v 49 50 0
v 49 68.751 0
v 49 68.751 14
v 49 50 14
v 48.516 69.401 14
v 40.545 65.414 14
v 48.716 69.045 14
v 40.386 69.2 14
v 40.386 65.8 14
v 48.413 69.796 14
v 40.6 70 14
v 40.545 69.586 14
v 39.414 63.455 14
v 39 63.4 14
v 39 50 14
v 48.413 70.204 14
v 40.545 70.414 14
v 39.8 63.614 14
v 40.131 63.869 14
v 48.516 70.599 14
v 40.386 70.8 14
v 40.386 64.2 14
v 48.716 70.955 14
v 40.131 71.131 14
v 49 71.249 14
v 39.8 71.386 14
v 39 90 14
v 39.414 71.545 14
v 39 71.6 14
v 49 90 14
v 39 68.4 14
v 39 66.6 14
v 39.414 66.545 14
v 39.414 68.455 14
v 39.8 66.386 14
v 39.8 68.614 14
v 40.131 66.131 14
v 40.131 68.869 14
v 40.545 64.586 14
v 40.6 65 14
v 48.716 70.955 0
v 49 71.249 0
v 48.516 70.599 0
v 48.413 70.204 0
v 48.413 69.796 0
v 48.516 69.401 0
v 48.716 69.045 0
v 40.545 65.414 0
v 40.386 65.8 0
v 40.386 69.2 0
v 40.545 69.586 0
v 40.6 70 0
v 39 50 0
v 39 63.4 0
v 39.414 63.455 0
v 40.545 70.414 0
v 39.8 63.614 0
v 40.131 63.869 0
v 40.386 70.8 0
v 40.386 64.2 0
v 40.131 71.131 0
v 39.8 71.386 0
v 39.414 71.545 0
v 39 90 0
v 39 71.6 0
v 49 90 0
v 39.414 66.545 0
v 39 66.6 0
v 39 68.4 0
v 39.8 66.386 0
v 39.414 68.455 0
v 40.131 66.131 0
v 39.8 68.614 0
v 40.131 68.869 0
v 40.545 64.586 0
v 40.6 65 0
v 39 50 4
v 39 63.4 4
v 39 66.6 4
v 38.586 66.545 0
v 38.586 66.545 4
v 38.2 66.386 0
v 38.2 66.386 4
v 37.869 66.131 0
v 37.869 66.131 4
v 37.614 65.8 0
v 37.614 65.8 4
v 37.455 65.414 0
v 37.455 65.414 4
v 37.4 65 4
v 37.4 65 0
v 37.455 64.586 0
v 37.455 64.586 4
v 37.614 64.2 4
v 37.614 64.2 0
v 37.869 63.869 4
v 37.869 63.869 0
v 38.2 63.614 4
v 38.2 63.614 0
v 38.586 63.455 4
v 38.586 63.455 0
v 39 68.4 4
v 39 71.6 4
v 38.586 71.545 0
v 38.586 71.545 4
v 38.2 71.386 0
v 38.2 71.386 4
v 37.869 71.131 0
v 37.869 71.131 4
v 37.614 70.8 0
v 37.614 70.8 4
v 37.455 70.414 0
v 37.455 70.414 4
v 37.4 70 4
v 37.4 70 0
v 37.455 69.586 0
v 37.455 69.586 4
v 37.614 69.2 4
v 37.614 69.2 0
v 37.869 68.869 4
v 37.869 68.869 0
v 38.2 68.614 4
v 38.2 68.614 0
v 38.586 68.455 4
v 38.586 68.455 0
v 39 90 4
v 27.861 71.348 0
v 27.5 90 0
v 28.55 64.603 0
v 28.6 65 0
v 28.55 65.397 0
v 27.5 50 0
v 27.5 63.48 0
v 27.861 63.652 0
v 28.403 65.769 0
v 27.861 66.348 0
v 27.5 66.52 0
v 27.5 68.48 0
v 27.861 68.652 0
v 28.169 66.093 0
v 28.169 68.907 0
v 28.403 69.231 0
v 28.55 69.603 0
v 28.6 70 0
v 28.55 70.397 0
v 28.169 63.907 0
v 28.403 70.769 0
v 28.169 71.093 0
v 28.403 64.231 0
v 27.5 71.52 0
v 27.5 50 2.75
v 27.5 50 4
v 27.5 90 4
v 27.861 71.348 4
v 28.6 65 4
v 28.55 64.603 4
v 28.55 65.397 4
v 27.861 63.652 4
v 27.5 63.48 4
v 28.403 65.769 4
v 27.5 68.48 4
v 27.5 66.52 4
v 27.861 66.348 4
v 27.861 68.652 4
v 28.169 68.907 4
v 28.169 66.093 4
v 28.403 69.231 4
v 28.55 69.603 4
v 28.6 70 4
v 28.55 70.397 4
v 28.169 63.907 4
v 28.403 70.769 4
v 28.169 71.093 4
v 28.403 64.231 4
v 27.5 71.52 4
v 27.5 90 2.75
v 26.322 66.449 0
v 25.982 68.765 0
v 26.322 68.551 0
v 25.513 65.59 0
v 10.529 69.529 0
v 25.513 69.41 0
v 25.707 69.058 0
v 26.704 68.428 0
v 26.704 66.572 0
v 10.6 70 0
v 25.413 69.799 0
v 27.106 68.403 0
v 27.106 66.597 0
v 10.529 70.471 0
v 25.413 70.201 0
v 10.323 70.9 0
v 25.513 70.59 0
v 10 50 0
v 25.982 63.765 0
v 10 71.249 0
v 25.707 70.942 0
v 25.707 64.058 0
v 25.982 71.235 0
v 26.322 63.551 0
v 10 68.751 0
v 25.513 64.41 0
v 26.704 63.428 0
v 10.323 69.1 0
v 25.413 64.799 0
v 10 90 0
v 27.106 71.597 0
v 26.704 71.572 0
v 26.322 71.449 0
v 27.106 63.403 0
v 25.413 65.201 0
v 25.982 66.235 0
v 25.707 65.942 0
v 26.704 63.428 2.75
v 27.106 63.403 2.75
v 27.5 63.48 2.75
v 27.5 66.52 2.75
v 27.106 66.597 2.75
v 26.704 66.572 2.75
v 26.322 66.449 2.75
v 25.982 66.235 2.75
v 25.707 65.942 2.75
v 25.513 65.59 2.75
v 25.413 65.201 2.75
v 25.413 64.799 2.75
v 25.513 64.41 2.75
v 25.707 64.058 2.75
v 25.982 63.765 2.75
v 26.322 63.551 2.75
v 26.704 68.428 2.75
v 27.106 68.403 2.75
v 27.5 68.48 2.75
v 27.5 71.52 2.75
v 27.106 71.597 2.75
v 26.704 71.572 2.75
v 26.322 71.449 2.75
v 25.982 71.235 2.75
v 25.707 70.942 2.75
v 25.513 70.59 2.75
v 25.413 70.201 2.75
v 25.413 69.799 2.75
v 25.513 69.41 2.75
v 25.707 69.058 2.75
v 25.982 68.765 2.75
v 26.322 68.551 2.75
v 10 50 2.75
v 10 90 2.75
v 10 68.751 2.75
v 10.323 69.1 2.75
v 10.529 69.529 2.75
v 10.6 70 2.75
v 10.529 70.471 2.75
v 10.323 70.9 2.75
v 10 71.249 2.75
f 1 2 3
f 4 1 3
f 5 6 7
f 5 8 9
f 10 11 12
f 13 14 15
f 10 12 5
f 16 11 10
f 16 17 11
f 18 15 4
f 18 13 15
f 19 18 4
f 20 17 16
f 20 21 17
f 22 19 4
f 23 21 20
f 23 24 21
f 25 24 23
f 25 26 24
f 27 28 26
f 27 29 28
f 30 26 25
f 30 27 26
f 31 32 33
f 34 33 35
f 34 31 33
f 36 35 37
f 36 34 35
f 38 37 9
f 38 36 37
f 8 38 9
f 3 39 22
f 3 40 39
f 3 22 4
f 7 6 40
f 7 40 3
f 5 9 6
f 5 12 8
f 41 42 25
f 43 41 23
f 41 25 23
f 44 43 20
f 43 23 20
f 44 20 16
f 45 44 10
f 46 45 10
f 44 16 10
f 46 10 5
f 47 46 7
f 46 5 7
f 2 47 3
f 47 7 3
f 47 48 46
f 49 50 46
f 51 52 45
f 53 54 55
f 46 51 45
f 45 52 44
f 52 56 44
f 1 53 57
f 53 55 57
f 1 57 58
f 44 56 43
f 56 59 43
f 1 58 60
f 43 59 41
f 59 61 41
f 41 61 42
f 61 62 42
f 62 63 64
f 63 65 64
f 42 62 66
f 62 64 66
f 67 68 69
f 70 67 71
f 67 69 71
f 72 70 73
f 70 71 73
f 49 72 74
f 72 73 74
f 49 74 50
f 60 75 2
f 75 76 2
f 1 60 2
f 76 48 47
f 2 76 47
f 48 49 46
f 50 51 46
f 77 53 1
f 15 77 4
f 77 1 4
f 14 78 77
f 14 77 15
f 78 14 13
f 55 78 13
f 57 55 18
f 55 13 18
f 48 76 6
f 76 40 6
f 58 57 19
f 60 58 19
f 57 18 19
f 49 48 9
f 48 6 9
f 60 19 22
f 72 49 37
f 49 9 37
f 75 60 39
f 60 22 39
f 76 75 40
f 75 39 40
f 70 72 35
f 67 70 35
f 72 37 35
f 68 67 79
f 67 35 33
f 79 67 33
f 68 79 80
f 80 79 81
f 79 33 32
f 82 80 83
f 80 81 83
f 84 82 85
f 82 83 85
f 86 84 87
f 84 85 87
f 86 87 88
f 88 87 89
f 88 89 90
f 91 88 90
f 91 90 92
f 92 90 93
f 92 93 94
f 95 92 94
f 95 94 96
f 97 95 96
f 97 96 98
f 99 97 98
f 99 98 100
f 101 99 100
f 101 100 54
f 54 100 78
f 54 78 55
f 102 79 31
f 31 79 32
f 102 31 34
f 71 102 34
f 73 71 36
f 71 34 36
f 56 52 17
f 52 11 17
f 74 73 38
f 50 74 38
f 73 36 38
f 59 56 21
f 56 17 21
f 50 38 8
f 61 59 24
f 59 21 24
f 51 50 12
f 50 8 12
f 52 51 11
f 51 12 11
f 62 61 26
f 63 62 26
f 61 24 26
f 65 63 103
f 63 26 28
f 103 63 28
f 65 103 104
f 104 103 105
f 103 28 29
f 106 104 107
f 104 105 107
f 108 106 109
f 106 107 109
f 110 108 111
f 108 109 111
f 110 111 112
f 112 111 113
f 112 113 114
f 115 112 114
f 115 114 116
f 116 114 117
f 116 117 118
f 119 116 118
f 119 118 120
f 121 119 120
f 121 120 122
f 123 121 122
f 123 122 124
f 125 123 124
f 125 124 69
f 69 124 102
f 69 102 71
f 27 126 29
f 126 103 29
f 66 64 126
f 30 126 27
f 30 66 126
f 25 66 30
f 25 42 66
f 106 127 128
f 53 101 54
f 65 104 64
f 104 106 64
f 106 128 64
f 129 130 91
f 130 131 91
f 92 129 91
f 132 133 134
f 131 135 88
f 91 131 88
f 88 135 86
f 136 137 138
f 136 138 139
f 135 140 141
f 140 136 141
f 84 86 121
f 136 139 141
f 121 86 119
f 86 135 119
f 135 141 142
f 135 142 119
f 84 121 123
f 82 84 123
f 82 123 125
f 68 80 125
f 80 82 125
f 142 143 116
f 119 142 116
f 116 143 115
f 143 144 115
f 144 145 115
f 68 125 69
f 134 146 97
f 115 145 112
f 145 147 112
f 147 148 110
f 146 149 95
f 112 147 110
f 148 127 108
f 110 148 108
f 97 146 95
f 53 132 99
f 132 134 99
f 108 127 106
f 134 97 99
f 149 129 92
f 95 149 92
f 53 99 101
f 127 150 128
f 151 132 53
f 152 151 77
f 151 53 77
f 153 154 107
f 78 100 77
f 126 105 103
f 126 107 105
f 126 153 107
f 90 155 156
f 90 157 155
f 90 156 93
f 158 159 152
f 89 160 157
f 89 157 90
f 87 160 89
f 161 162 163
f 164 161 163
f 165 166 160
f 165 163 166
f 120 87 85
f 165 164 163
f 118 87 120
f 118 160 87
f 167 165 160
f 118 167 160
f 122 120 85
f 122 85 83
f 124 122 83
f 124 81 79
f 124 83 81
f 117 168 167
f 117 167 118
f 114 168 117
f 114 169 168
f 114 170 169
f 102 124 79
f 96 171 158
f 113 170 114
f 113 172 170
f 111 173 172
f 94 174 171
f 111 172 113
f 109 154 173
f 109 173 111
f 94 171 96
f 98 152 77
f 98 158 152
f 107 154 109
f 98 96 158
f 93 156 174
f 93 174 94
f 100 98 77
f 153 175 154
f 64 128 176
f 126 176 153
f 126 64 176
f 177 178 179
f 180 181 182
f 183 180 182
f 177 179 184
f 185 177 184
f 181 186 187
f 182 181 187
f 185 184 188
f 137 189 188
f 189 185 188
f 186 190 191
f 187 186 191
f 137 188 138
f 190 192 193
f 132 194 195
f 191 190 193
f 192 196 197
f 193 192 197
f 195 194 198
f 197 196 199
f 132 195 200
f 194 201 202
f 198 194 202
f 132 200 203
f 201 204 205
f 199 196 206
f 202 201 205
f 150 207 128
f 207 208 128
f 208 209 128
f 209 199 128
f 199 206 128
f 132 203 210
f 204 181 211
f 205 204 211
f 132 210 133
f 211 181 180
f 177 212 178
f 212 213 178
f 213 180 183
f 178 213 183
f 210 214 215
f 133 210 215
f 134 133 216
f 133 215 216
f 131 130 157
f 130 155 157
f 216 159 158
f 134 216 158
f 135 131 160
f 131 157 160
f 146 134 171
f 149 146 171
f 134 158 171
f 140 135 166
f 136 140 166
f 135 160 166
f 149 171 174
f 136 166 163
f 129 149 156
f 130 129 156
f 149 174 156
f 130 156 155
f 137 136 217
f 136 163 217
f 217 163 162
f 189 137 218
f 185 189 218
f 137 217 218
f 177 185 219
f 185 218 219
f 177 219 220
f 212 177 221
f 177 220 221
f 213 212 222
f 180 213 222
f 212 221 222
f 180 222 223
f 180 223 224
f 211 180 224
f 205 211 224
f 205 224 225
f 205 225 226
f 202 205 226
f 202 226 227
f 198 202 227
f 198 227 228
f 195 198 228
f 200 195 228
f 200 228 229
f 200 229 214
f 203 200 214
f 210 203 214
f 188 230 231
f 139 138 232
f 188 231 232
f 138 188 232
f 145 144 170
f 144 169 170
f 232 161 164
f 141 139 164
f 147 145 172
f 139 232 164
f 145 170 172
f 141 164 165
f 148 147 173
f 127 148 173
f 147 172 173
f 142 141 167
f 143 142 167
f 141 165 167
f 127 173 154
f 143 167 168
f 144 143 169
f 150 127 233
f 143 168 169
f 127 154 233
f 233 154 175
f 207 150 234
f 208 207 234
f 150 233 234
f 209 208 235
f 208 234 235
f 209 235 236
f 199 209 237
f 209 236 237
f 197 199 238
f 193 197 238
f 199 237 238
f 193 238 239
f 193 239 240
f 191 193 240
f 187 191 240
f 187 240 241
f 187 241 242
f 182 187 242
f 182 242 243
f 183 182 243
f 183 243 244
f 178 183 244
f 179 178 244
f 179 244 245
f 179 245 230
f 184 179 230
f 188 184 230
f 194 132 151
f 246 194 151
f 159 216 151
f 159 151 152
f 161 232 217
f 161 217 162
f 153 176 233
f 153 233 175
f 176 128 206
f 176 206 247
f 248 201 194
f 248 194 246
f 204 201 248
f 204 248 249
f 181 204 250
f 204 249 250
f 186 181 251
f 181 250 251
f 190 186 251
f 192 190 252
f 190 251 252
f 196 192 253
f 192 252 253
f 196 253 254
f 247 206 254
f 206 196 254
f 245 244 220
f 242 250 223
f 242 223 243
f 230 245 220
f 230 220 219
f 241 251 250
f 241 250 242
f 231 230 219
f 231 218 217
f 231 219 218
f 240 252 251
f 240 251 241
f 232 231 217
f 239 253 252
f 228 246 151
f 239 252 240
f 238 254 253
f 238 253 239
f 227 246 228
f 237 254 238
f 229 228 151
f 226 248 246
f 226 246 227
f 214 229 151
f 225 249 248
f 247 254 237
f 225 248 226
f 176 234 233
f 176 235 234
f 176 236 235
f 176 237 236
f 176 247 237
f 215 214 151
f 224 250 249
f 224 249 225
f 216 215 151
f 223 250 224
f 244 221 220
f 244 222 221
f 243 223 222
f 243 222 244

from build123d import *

# Parameters (mm, degrees)
CYLINDER009_R     = 1.6
CYLINDER009_DEPTH = 20
CYLINDER008_R     = 1.6
CYLINDER008_DEPTH = 20
CYLINDER007_R     = 1.6
CYLINDER007_DEPTH = 20
CYLINDER006_R     = 1.6
CYLINDER006_DEPTH = 10
CYLINDER005_R     = 1.6
CYLINDER005_DEPTH = 10
CYLINDER004_R     = 1.6
CYLINDER004_DEPTH = 10
BOX002_W          = 11.5
BOX002_H          = 40
BOX002_DEPTH      = 4
BOX003_W          = 10
BOX003_H          = 40
BOX003_DEPTH      = 14
BOX001_W          = 17.5
BOX001_H          = 40
BOX001_DEPTH      = 2.75


with BuildPart() as cylinder009:
    # Cylinder009 → Cylinder009 (new body)
    with BuildSketch(Plane(origin=(50, 70, -5), x_dir=(1, 0, 0), z_dir=(0, 0, 1))):
        Circle(CYLINDER009_R)
    extrude(amount=CYLINDER009_DEPTH)


with BuildPart() as cylinder008:
    # Cylinder008 → Cylinder008 (new body)
    with BuildSketch(Plane(origin=(39, 70, -5), x_dir=(1, 0, 0), z_dir=(0, 0, 1))):
        Circle(CYLINDER008_R)
    extrude(amount=CYLINDER008_DEPTH)


with BuildPart() as cylinder007:
    # Cylinder007 → Cylinder007 (new body)
    with BuildSketch(Plane(origin=(39, 65, -5), x_dir=(1, 0, 0), z_dir=(0, 0, 1))):
        Circle(CYLINDER007_R)
    extrude(amount=CYLINDER007_DEPTH)


with BuildPart() as cylinder006:
    # Cylinder006 → Cylinder006 (new body)
    with BuildSketch(Plane(origin=(27, 65, -5), x_dir=(1, 0, 0), z_dir=(0, 0, 1))):
        Circle(CYLINDER006_R)
    extrude(amount=CYLINDER006_DEPTH)


with BuildPart() as cylinder005:
    # Cylinder005 → Cylinder005 (new body)
    with BuildSketch(Plane(origin=(27, 70, -5), x_dir=(1, 0, 0), z_dir=(0, 0, 1))):
        Circle(CYLINDER005_R)
    extrude(amount=CYLINDER005_DEPTH)


with BuildPart() as cylinder004:
    # Cylinder004 → Cylinder004 (new body)
    with BuildSketch(Plane(origin=(9, 70, -5), x_dir=(1, 0, 0), z_dir=(0, 0, 1))):
        Circle(CYLINDER004_R)
    extrude(amount=CYLINDER004_DEPTH)


with BuildPart() as cube002:
    # Box002 → Box002 (new body)
    with BuildSketch(Plane(origin=(27.5, 50, 0), x_dir=(1, 0, 0), z_dir=(0, 0, 1))):
        with Locations((5.75, 20)):
            Rectangle(BOX002_W, BOX002_H)
    extrude(amount=BOX002_DEPTH)


with BuildPart() as cube003:
    # Box003 → Box003 (new body)
    with BuildSketch(Plane(origin=(39, 50, 0), x_dir=(1, 0, 0), z_dir=(0, 0, 1))):
        with Locations((5, 20)):
            Rectangle(BOX003_W, BOX003_H)
    extrude(amount=BOX003_DEPTH)


with BuildPart() as cut005:
    # Box001 → Box001 (new body)
    with BuildSketch(Plane(origin=(10, 50, 0), x_dir=(1, 0, 0), z_dir=(0, 0, 1))):
        with Locations((8.75, 20)):
            Rectangle(BOX001_W, BOX001_H)
    extrude(amount=BOX001_DEPTH)

    # Fusion: union Cube002, Cube003
    add(cube002.part)
    add(cube003.part)

    # Cut: cut Cylinder004
    add(cylinder004.part, mode=Mode.SUBTRACT)

    # Cut001: cut Cylinder005
    add(cylinder005.part, mode=Mode.SUBTRACT)

    # Cut002: cut Cylinder006
    add(cylinder006.part, mode=Mode.SUBTRACT)

    # Cut003: cut Cylinder007
    add(cylinder007.part, mode=Mode.SUBTRACT)

    # Cut004: cut Cylinder008
    add(cylinder008.part, mode=Mode.SUBTRACT)

    # Cut005: cut Cylinder009
    add(cylinder009.part, mode=Mode.SUBTRACT)


solid = cut005.part
